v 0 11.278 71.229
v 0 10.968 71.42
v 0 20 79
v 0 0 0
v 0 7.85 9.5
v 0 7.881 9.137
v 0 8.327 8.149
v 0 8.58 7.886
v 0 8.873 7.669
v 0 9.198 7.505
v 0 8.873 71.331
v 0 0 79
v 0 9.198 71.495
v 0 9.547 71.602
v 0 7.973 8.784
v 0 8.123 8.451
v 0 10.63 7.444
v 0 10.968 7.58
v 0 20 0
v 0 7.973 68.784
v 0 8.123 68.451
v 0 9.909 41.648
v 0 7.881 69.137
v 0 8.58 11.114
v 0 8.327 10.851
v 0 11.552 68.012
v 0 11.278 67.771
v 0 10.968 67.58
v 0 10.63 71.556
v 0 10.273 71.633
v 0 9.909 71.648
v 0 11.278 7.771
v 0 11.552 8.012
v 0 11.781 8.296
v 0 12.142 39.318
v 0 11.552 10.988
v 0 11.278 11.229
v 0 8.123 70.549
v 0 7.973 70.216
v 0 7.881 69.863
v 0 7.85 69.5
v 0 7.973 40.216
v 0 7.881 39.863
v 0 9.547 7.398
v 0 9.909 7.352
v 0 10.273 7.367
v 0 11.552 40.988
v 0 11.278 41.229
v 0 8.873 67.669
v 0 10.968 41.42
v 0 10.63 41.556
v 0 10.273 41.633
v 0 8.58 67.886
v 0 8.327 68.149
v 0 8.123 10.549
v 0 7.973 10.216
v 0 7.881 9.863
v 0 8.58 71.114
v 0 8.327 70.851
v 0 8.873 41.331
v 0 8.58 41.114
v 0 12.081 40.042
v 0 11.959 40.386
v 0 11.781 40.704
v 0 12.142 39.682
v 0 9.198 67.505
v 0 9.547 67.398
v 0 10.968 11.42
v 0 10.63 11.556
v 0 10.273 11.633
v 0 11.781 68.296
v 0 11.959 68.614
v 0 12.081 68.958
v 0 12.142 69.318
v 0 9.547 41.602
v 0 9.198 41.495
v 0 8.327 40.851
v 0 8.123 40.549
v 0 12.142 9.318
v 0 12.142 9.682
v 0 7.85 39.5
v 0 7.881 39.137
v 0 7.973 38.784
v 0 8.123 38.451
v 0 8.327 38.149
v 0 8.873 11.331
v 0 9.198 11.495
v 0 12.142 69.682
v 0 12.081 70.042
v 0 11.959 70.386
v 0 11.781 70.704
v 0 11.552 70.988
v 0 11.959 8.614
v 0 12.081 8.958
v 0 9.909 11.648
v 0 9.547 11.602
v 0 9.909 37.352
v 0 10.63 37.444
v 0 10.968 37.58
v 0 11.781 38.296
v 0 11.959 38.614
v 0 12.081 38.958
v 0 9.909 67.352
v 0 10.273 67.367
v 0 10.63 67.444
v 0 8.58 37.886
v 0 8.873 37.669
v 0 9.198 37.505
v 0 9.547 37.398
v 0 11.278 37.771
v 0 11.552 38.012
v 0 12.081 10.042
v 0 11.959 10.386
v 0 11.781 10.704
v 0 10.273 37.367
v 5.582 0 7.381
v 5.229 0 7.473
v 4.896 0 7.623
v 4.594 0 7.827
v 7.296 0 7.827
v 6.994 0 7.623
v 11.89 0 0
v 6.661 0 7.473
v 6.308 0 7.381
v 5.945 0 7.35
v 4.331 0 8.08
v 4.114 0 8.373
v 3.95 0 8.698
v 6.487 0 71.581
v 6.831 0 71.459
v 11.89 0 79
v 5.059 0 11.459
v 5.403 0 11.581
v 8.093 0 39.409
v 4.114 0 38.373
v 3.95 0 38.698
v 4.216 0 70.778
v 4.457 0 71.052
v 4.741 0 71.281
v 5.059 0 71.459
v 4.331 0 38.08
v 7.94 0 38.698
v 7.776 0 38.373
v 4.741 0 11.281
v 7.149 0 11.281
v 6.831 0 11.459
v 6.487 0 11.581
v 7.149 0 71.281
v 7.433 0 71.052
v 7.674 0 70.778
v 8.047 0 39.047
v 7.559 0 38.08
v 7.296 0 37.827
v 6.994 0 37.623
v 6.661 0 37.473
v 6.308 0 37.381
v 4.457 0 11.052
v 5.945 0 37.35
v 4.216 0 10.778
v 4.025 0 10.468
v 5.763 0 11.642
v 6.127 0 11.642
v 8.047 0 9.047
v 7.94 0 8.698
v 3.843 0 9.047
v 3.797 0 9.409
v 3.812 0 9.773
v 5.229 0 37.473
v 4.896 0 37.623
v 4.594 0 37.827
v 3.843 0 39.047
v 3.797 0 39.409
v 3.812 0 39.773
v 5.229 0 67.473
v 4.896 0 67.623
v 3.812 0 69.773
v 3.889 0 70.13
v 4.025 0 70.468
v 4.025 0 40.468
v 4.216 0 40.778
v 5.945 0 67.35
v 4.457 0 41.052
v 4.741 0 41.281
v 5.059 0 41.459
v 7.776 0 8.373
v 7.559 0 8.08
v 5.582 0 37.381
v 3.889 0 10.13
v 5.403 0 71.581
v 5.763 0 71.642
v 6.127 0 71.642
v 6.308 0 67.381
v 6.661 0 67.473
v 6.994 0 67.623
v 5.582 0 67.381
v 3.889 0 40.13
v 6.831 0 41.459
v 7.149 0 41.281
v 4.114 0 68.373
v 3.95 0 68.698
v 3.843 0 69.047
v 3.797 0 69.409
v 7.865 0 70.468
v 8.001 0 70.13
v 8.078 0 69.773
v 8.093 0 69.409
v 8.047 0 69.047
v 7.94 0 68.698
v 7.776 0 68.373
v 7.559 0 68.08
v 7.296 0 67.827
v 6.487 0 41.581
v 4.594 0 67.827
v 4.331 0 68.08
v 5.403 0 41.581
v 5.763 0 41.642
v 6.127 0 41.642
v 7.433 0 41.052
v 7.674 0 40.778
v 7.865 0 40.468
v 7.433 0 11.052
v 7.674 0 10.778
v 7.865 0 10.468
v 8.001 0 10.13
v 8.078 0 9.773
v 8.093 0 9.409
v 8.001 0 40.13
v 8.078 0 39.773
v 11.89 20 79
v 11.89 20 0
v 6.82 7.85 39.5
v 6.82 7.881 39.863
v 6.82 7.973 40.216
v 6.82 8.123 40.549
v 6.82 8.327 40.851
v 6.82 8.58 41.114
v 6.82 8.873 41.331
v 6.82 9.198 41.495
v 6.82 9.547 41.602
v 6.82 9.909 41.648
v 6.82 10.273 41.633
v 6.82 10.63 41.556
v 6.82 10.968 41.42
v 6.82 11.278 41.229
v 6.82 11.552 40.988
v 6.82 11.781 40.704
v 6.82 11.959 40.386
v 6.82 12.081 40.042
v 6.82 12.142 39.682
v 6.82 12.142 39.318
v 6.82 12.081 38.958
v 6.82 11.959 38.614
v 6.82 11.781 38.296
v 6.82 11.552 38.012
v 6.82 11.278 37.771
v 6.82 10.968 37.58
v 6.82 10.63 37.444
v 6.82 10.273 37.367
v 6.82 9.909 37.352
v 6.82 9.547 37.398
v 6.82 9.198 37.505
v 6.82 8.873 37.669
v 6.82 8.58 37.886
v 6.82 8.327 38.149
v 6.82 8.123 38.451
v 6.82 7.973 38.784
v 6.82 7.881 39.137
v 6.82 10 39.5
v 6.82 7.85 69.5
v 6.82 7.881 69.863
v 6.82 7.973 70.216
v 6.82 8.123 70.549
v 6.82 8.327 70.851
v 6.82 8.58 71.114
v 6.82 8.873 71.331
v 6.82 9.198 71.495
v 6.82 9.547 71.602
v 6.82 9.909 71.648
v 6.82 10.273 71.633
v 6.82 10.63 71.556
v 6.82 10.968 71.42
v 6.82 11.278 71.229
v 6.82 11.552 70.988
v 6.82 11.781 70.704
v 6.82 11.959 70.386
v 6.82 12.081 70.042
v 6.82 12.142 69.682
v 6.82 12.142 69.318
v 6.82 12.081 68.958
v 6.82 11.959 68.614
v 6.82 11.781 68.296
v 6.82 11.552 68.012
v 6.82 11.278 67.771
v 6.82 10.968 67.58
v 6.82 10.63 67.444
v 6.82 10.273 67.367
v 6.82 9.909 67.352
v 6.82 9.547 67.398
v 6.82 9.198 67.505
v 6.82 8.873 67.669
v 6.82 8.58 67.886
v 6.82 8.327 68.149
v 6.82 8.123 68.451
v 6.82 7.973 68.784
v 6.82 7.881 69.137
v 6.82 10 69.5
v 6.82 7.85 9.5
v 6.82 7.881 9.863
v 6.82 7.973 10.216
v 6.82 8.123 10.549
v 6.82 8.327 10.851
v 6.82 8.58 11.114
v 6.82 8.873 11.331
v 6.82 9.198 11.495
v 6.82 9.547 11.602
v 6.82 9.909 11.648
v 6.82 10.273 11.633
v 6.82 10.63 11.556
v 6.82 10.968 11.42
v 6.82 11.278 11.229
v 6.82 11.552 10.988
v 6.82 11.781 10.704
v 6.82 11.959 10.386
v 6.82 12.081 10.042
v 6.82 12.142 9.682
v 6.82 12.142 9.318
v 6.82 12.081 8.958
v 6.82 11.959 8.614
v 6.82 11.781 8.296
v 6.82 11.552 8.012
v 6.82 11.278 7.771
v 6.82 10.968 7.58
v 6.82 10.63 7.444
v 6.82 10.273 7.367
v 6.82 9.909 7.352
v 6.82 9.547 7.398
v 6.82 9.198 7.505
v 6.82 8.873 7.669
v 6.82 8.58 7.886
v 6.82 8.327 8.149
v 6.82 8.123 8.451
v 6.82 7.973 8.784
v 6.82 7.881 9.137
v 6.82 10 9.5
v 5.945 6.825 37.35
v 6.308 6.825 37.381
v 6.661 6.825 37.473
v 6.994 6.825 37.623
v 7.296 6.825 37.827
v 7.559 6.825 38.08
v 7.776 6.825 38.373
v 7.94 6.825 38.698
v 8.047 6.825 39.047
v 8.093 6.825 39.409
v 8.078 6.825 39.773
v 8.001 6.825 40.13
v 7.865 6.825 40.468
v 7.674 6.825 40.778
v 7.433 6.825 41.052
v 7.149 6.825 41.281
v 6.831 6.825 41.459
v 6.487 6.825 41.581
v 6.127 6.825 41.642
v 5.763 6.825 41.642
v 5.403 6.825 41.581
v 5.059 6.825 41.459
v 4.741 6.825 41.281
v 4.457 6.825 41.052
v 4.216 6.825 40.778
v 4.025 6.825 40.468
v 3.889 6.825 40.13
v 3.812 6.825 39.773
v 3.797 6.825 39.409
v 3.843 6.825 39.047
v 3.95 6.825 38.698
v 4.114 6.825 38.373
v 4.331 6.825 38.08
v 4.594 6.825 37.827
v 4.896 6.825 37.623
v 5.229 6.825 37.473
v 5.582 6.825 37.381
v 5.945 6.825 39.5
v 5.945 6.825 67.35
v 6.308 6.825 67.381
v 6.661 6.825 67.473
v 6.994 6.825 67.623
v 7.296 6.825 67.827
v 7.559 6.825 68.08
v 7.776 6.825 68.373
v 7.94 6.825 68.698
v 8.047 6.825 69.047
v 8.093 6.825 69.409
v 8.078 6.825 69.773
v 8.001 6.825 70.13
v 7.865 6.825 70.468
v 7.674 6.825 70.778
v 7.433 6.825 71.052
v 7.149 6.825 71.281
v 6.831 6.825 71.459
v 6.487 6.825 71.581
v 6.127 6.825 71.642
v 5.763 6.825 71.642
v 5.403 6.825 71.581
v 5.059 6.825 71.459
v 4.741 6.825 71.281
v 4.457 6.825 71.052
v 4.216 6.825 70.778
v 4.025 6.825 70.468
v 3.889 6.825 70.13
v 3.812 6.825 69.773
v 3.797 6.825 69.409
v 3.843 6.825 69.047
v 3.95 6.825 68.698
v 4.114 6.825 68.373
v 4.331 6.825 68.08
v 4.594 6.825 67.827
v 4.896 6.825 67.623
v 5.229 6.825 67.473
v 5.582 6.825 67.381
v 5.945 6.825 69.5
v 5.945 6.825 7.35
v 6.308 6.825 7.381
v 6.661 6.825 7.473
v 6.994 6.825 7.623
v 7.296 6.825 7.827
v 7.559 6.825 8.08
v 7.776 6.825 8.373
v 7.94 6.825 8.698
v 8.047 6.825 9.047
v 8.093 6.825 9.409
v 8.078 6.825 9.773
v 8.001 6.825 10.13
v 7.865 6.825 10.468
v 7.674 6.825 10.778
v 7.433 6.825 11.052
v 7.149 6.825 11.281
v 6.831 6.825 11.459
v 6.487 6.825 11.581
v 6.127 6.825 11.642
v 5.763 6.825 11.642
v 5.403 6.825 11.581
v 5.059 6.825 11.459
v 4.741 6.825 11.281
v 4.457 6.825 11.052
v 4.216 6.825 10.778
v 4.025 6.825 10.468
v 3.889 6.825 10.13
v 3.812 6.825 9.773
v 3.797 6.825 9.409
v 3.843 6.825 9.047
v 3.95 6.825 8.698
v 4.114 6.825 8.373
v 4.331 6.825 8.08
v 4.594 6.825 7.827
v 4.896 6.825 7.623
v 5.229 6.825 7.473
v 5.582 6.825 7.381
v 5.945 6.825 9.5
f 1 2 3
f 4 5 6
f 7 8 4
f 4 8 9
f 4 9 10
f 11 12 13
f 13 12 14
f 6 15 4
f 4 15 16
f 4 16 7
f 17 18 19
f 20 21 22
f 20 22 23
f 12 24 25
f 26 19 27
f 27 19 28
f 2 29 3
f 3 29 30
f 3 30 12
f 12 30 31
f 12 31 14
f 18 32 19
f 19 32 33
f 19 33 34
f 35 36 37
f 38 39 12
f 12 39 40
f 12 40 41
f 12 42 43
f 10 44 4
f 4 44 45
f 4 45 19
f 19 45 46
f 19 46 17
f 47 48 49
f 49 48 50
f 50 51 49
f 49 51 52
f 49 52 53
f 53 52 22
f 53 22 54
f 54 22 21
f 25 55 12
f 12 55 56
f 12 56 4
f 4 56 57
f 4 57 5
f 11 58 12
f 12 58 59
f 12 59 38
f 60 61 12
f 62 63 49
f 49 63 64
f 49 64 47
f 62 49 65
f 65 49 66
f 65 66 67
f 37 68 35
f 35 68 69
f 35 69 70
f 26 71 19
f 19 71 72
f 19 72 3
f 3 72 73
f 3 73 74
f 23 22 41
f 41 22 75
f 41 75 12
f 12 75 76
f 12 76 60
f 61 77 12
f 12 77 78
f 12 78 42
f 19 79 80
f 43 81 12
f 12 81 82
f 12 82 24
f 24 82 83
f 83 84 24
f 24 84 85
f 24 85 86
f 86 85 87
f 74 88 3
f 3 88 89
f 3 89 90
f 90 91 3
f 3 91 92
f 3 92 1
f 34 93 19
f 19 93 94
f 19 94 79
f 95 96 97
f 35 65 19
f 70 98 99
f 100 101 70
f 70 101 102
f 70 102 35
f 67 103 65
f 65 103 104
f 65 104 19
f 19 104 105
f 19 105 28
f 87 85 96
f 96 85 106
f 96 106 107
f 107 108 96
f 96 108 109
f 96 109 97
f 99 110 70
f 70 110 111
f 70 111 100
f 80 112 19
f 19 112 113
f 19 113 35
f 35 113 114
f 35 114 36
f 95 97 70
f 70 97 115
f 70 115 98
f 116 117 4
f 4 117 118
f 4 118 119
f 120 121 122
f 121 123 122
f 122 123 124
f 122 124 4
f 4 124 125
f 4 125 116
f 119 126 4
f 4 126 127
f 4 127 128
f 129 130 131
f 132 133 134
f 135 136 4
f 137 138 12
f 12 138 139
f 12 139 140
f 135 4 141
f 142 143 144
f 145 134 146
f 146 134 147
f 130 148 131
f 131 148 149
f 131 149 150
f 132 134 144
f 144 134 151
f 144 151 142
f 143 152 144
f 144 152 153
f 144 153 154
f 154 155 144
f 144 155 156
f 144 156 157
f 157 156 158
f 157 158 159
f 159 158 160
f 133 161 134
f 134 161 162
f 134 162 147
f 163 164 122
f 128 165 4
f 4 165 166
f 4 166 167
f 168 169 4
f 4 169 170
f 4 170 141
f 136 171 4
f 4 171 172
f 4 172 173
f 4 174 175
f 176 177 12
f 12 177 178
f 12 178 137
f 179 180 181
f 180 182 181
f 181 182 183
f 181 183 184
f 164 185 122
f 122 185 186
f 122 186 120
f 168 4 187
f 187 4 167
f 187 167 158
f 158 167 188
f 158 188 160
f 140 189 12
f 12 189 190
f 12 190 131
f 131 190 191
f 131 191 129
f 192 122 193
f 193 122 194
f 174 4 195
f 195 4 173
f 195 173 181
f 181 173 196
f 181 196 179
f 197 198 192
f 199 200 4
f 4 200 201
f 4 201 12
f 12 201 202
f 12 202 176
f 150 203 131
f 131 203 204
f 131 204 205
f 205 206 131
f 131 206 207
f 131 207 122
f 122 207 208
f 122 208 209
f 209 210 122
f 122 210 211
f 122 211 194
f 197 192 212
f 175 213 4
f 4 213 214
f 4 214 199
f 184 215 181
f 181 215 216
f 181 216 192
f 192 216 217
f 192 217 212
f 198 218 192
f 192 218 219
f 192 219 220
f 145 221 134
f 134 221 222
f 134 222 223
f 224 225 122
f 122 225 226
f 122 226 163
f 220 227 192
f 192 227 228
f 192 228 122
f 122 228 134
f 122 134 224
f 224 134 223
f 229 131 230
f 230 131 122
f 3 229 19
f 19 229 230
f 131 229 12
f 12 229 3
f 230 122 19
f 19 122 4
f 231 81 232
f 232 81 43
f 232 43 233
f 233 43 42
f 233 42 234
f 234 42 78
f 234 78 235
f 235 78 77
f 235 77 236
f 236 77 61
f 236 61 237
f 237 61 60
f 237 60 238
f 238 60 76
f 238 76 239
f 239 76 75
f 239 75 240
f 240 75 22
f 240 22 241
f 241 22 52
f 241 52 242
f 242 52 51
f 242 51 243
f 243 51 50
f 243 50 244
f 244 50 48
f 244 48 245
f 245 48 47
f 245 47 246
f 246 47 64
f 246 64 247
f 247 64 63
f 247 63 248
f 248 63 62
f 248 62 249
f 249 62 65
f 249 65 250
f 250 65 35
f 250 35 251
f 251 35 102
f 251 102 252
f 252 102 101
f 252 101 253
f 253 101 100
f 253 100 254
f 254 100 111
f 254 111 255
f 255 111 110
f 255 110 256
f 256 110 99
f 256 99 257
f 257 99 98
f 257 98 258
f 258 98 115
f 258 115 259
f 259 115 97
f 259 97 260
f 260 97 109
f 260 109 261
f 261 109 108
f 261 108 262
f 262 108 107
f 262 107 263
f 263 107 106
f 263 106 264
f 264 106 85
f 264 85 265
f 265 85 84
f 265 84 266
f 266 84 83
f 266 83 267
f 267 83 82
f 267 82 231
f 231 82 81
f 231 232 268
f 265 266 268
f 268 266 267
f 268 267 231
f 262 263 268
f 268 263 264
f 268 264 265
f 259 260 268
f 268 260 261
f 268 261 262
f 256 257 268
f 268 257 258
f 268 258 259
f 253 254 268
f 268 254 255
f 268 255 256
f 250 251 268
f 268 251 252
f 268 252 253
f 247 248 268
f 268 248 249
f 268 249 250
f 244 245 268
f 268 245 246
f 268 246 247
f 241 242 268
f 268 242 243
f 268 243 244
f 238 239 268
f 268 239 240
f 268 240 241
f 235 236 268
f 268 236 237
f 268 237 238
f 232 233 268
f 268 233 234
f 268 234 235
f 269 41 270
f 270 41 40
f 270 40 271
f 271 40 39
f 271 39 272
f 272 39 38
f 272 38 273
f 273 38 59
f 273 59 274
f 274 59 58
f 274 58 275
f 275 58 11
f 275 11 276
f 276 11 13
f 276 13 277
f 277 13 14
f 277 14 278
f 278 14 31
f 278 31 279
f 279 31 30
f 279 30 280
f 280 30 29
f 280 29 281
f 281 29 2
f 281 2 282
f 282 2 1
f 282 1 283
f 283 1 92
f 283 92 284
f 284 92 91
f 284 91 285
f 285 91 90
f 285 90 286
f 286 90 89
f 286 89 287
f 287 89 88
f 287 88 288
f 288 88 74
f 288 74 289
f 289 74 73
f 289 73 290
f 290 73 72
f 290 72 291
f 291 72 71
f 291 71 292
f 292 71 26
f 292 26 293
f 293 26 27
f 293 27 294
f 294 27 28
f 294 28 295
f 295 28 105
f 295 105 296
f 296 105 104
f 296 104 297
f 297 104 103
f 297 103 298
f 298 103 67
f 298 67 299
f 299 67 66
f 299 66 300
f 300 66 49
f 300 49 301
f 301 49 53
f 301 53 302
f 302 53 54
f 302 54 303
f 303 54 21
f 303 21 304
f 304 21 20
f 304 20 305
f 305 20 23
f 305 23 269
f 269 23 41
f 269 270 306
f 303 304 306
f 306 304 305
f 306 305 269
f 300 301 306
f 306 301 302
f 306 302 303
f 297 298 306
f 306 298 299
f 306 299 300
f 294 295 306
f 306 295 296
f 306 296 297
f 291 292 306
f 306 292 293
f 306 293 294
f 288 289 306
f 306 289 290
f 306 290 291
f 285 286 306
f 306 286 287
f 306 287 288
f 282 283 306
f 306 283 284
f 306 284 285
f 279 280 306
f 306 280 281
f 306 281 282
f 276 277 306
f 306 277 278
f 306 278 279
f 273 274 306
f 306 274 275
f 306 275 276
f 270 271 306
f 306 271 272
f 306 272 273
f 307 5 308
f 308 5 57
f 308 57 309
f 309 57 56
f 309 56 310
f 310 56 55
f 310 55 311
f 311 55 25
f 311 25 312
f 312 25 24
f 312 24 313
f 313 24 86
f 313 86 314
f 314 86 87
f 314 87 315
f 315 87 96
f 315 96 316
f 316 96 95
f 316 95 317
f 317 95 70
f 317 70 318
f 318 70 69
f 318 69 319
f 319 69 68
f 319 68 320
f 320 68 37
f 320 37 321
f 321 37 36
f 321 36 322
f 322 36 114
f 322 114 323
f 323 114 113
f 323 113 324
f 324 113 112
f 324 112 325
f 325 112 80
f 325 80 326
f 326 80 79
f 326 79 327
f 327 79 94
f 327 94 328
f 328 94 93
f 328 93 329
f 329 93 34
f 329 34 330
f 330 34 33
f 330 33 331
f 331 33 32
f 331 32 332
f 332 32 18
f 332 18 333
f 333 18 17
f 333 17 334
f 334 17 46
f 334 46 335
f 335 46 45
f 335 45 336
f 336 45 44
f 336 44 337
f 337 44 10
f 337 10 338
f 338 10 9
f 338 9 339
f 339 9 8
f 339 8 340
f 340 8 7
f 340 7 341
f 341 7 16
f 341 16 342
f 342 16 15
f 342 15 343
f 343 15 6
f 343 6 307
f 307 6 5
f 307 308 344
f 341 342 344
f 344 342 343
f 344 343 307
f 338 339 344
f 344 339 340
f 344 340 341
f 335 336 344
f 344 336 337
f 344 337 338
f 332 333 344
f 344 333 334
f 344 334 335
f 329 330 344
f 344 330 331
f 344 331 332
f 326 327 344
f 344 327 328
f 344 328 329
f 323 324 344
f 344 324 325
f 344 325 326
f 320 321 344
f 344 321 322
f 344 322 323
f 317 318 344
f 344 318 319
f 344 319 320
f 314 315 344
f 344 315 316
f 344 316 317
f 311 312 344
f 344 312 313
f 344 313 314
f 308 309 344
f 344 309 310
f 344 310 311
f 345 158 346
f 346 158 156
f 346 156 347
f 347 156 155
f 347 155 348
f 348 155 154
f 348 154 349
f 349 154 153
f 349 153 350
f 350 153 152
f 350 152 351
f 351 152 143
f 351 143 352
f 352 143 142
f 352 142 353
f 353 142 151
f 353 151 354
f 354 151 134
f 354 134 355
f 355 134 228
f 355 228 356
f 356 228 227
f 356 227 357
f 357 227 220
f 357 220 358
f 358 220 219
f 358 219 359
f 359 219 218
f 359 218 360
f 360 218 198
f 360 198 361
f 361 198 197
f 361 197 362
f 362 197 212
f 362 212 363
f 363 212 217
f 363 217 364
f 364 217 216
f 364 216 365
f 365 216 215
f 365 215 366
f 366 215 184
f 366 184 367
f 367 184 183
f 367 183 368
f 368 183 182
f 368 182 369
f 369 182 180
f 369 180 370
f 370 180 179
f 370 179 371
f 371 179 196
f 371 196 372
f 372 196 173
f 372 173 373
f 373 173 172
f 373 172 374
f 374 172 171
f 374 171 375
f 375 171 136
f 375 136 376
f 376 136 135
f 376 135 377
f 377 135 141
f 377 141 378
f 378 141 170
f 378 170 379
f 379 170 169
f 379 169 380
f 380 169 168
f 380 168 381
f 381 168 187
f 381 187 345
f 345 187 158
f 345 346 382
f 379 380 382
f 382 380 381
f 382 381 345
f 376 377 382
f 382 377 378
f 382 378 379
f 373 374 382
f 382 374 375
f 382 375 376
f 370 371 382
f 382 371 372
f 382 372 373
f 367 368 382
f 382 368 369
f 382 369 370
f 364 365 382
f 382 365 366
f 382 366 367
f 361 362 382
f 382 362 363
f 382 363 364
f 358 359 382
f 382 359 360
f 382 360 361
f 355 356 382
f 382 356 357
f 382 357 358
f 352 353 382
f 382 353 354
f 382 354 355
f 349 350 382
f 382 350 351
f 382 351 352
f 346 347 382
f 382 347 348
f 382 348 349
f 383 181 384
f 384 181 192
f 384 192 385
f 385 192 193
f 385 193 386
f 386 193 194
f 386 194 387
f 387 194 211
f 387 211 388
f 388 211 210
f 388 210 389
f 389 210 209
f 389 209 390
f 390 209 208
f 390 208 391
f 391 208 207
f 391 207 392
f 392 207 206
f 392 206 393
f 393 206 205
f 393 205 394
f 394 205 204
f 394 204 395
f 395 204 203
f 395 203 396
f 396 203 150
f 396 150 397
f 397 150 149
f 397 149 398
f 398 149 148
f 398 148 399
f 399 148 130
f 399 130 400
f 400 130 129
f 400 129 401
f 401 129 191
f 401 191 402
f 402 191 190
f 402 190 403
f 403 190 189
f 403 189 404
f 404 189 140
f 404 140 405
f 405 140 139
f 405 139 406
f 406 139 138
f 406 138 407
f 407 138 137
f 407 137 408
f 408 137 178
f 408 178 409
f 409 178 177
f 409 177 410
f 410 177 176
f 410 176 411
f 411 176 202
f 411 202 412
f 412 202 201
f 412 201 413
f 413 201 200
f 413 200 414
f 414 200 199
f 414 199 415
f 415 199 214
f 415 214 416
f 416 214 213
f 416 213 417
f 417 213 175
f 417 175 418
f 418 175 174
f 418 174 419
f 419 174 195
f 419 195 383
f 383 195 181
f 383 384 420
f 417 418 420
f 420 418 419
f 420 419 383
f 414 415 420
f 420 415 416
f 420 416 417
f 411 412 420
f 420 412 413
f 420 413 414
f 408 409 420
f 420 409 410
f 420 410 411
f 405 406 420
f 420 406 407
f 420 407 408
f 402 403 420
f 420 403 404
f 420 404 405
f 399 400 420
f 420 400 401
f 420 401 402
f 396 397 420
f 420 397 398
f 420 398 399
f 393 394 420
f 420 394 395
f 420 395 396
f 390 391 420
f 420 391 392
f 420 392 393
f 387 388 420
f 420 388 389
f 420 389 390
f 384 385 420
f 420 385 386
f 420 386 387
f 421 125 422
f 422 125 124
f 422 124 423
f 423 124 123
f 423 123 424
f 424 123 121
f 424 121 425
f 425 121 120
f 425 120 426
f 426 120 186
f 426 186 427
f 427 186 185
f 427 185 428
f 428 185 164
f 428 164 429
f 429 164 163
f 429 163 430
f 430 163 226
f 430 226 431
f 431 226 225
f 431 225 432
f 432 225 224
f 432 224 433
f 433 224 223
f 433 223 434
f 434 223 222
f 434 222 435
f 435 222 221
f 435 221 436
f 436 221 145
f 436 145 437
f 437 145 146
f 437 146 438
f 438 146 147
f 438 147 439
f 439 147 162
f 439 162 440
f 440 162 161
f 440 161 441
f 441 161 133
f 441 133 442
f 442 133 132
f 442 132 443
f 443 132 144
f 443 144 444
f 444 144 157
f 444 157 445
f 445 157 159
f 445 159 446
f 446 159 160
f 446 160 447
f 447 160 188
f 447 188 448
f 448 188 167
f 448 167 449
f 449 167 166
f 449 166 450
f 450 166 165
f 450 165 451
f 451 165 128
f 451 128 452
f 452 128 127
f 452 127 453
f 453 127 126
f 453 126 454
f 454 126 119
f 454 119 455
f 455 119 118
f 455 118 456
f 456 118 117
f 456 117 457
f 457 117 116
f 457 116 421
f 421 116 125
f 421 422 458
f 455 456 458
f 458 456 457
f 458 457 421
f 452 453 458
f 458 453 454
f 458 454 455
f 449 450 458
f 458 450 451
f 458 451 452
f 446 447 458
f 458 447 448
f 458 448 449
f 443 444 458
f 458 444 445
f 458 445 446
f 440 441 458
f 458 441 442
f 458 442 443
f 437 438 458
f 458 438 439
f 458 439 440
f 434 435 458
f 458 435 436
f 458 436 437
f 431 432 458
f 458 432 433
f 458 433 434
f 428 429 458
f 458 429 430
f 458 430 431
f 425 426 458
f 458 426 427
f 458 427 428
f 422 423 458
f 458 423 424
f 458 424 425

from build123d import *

# Parameters (mm, degrees)
SKETCH1_W           = 11.89
SKETCH1_H           = 20
BOSS_EXTRUDE1_DEPTH = 79
SKETCH4_R           = 2.15
CUT_EXTRUDE1_DEPTH  = 6.82
SKETCH5_R           = 2.15
CUT_EXTRUDE2_DEPTH  = 6.825


with BuildPart() as part:
    # Sketch1 → Boss-Extrude1 (new body)
    with BuildSketch(Plane.XY):
        with Locations((5.945, 10)):
            Rectangle(SKETCH1_W, SKETCH1_H)
    extrude(amount=BOSS_EXTRUDE1_DEPTH)

    # Sketch4 → Cut-Extrude1 (cut)
    with BuildSketch(Plane.ZY):
        with Locations((39.5, 10)):
            Circle(SKETCH4_R)
        with Locations((9.5, 10)):
            Circle(SKETCH4_R)
        with Locations((69.5, 10)):
            Circle(SKETCH4_R)
    extrude(amount=-CUT_EXTRUDE1_DEPTH, mode=Mode.SUBTRACT)

    # Sketch5 → Cut-Extrude2 (cut)
    with BuildSketch(Plane.XZ):
        with Locations((5.945, 39.5)):
            Circle(SKETCH5_R)
        with Locations((5.945, 69.5)):
            Circle(SKETCH5_R)
        with Locations((5.945, 9.5)):
            Circle(SKETCH5_R)
    extrude(amount=-CUT_EXTRUDE2_DEPTH, mode=Mode.SUBTRACT)


solid = part.part
